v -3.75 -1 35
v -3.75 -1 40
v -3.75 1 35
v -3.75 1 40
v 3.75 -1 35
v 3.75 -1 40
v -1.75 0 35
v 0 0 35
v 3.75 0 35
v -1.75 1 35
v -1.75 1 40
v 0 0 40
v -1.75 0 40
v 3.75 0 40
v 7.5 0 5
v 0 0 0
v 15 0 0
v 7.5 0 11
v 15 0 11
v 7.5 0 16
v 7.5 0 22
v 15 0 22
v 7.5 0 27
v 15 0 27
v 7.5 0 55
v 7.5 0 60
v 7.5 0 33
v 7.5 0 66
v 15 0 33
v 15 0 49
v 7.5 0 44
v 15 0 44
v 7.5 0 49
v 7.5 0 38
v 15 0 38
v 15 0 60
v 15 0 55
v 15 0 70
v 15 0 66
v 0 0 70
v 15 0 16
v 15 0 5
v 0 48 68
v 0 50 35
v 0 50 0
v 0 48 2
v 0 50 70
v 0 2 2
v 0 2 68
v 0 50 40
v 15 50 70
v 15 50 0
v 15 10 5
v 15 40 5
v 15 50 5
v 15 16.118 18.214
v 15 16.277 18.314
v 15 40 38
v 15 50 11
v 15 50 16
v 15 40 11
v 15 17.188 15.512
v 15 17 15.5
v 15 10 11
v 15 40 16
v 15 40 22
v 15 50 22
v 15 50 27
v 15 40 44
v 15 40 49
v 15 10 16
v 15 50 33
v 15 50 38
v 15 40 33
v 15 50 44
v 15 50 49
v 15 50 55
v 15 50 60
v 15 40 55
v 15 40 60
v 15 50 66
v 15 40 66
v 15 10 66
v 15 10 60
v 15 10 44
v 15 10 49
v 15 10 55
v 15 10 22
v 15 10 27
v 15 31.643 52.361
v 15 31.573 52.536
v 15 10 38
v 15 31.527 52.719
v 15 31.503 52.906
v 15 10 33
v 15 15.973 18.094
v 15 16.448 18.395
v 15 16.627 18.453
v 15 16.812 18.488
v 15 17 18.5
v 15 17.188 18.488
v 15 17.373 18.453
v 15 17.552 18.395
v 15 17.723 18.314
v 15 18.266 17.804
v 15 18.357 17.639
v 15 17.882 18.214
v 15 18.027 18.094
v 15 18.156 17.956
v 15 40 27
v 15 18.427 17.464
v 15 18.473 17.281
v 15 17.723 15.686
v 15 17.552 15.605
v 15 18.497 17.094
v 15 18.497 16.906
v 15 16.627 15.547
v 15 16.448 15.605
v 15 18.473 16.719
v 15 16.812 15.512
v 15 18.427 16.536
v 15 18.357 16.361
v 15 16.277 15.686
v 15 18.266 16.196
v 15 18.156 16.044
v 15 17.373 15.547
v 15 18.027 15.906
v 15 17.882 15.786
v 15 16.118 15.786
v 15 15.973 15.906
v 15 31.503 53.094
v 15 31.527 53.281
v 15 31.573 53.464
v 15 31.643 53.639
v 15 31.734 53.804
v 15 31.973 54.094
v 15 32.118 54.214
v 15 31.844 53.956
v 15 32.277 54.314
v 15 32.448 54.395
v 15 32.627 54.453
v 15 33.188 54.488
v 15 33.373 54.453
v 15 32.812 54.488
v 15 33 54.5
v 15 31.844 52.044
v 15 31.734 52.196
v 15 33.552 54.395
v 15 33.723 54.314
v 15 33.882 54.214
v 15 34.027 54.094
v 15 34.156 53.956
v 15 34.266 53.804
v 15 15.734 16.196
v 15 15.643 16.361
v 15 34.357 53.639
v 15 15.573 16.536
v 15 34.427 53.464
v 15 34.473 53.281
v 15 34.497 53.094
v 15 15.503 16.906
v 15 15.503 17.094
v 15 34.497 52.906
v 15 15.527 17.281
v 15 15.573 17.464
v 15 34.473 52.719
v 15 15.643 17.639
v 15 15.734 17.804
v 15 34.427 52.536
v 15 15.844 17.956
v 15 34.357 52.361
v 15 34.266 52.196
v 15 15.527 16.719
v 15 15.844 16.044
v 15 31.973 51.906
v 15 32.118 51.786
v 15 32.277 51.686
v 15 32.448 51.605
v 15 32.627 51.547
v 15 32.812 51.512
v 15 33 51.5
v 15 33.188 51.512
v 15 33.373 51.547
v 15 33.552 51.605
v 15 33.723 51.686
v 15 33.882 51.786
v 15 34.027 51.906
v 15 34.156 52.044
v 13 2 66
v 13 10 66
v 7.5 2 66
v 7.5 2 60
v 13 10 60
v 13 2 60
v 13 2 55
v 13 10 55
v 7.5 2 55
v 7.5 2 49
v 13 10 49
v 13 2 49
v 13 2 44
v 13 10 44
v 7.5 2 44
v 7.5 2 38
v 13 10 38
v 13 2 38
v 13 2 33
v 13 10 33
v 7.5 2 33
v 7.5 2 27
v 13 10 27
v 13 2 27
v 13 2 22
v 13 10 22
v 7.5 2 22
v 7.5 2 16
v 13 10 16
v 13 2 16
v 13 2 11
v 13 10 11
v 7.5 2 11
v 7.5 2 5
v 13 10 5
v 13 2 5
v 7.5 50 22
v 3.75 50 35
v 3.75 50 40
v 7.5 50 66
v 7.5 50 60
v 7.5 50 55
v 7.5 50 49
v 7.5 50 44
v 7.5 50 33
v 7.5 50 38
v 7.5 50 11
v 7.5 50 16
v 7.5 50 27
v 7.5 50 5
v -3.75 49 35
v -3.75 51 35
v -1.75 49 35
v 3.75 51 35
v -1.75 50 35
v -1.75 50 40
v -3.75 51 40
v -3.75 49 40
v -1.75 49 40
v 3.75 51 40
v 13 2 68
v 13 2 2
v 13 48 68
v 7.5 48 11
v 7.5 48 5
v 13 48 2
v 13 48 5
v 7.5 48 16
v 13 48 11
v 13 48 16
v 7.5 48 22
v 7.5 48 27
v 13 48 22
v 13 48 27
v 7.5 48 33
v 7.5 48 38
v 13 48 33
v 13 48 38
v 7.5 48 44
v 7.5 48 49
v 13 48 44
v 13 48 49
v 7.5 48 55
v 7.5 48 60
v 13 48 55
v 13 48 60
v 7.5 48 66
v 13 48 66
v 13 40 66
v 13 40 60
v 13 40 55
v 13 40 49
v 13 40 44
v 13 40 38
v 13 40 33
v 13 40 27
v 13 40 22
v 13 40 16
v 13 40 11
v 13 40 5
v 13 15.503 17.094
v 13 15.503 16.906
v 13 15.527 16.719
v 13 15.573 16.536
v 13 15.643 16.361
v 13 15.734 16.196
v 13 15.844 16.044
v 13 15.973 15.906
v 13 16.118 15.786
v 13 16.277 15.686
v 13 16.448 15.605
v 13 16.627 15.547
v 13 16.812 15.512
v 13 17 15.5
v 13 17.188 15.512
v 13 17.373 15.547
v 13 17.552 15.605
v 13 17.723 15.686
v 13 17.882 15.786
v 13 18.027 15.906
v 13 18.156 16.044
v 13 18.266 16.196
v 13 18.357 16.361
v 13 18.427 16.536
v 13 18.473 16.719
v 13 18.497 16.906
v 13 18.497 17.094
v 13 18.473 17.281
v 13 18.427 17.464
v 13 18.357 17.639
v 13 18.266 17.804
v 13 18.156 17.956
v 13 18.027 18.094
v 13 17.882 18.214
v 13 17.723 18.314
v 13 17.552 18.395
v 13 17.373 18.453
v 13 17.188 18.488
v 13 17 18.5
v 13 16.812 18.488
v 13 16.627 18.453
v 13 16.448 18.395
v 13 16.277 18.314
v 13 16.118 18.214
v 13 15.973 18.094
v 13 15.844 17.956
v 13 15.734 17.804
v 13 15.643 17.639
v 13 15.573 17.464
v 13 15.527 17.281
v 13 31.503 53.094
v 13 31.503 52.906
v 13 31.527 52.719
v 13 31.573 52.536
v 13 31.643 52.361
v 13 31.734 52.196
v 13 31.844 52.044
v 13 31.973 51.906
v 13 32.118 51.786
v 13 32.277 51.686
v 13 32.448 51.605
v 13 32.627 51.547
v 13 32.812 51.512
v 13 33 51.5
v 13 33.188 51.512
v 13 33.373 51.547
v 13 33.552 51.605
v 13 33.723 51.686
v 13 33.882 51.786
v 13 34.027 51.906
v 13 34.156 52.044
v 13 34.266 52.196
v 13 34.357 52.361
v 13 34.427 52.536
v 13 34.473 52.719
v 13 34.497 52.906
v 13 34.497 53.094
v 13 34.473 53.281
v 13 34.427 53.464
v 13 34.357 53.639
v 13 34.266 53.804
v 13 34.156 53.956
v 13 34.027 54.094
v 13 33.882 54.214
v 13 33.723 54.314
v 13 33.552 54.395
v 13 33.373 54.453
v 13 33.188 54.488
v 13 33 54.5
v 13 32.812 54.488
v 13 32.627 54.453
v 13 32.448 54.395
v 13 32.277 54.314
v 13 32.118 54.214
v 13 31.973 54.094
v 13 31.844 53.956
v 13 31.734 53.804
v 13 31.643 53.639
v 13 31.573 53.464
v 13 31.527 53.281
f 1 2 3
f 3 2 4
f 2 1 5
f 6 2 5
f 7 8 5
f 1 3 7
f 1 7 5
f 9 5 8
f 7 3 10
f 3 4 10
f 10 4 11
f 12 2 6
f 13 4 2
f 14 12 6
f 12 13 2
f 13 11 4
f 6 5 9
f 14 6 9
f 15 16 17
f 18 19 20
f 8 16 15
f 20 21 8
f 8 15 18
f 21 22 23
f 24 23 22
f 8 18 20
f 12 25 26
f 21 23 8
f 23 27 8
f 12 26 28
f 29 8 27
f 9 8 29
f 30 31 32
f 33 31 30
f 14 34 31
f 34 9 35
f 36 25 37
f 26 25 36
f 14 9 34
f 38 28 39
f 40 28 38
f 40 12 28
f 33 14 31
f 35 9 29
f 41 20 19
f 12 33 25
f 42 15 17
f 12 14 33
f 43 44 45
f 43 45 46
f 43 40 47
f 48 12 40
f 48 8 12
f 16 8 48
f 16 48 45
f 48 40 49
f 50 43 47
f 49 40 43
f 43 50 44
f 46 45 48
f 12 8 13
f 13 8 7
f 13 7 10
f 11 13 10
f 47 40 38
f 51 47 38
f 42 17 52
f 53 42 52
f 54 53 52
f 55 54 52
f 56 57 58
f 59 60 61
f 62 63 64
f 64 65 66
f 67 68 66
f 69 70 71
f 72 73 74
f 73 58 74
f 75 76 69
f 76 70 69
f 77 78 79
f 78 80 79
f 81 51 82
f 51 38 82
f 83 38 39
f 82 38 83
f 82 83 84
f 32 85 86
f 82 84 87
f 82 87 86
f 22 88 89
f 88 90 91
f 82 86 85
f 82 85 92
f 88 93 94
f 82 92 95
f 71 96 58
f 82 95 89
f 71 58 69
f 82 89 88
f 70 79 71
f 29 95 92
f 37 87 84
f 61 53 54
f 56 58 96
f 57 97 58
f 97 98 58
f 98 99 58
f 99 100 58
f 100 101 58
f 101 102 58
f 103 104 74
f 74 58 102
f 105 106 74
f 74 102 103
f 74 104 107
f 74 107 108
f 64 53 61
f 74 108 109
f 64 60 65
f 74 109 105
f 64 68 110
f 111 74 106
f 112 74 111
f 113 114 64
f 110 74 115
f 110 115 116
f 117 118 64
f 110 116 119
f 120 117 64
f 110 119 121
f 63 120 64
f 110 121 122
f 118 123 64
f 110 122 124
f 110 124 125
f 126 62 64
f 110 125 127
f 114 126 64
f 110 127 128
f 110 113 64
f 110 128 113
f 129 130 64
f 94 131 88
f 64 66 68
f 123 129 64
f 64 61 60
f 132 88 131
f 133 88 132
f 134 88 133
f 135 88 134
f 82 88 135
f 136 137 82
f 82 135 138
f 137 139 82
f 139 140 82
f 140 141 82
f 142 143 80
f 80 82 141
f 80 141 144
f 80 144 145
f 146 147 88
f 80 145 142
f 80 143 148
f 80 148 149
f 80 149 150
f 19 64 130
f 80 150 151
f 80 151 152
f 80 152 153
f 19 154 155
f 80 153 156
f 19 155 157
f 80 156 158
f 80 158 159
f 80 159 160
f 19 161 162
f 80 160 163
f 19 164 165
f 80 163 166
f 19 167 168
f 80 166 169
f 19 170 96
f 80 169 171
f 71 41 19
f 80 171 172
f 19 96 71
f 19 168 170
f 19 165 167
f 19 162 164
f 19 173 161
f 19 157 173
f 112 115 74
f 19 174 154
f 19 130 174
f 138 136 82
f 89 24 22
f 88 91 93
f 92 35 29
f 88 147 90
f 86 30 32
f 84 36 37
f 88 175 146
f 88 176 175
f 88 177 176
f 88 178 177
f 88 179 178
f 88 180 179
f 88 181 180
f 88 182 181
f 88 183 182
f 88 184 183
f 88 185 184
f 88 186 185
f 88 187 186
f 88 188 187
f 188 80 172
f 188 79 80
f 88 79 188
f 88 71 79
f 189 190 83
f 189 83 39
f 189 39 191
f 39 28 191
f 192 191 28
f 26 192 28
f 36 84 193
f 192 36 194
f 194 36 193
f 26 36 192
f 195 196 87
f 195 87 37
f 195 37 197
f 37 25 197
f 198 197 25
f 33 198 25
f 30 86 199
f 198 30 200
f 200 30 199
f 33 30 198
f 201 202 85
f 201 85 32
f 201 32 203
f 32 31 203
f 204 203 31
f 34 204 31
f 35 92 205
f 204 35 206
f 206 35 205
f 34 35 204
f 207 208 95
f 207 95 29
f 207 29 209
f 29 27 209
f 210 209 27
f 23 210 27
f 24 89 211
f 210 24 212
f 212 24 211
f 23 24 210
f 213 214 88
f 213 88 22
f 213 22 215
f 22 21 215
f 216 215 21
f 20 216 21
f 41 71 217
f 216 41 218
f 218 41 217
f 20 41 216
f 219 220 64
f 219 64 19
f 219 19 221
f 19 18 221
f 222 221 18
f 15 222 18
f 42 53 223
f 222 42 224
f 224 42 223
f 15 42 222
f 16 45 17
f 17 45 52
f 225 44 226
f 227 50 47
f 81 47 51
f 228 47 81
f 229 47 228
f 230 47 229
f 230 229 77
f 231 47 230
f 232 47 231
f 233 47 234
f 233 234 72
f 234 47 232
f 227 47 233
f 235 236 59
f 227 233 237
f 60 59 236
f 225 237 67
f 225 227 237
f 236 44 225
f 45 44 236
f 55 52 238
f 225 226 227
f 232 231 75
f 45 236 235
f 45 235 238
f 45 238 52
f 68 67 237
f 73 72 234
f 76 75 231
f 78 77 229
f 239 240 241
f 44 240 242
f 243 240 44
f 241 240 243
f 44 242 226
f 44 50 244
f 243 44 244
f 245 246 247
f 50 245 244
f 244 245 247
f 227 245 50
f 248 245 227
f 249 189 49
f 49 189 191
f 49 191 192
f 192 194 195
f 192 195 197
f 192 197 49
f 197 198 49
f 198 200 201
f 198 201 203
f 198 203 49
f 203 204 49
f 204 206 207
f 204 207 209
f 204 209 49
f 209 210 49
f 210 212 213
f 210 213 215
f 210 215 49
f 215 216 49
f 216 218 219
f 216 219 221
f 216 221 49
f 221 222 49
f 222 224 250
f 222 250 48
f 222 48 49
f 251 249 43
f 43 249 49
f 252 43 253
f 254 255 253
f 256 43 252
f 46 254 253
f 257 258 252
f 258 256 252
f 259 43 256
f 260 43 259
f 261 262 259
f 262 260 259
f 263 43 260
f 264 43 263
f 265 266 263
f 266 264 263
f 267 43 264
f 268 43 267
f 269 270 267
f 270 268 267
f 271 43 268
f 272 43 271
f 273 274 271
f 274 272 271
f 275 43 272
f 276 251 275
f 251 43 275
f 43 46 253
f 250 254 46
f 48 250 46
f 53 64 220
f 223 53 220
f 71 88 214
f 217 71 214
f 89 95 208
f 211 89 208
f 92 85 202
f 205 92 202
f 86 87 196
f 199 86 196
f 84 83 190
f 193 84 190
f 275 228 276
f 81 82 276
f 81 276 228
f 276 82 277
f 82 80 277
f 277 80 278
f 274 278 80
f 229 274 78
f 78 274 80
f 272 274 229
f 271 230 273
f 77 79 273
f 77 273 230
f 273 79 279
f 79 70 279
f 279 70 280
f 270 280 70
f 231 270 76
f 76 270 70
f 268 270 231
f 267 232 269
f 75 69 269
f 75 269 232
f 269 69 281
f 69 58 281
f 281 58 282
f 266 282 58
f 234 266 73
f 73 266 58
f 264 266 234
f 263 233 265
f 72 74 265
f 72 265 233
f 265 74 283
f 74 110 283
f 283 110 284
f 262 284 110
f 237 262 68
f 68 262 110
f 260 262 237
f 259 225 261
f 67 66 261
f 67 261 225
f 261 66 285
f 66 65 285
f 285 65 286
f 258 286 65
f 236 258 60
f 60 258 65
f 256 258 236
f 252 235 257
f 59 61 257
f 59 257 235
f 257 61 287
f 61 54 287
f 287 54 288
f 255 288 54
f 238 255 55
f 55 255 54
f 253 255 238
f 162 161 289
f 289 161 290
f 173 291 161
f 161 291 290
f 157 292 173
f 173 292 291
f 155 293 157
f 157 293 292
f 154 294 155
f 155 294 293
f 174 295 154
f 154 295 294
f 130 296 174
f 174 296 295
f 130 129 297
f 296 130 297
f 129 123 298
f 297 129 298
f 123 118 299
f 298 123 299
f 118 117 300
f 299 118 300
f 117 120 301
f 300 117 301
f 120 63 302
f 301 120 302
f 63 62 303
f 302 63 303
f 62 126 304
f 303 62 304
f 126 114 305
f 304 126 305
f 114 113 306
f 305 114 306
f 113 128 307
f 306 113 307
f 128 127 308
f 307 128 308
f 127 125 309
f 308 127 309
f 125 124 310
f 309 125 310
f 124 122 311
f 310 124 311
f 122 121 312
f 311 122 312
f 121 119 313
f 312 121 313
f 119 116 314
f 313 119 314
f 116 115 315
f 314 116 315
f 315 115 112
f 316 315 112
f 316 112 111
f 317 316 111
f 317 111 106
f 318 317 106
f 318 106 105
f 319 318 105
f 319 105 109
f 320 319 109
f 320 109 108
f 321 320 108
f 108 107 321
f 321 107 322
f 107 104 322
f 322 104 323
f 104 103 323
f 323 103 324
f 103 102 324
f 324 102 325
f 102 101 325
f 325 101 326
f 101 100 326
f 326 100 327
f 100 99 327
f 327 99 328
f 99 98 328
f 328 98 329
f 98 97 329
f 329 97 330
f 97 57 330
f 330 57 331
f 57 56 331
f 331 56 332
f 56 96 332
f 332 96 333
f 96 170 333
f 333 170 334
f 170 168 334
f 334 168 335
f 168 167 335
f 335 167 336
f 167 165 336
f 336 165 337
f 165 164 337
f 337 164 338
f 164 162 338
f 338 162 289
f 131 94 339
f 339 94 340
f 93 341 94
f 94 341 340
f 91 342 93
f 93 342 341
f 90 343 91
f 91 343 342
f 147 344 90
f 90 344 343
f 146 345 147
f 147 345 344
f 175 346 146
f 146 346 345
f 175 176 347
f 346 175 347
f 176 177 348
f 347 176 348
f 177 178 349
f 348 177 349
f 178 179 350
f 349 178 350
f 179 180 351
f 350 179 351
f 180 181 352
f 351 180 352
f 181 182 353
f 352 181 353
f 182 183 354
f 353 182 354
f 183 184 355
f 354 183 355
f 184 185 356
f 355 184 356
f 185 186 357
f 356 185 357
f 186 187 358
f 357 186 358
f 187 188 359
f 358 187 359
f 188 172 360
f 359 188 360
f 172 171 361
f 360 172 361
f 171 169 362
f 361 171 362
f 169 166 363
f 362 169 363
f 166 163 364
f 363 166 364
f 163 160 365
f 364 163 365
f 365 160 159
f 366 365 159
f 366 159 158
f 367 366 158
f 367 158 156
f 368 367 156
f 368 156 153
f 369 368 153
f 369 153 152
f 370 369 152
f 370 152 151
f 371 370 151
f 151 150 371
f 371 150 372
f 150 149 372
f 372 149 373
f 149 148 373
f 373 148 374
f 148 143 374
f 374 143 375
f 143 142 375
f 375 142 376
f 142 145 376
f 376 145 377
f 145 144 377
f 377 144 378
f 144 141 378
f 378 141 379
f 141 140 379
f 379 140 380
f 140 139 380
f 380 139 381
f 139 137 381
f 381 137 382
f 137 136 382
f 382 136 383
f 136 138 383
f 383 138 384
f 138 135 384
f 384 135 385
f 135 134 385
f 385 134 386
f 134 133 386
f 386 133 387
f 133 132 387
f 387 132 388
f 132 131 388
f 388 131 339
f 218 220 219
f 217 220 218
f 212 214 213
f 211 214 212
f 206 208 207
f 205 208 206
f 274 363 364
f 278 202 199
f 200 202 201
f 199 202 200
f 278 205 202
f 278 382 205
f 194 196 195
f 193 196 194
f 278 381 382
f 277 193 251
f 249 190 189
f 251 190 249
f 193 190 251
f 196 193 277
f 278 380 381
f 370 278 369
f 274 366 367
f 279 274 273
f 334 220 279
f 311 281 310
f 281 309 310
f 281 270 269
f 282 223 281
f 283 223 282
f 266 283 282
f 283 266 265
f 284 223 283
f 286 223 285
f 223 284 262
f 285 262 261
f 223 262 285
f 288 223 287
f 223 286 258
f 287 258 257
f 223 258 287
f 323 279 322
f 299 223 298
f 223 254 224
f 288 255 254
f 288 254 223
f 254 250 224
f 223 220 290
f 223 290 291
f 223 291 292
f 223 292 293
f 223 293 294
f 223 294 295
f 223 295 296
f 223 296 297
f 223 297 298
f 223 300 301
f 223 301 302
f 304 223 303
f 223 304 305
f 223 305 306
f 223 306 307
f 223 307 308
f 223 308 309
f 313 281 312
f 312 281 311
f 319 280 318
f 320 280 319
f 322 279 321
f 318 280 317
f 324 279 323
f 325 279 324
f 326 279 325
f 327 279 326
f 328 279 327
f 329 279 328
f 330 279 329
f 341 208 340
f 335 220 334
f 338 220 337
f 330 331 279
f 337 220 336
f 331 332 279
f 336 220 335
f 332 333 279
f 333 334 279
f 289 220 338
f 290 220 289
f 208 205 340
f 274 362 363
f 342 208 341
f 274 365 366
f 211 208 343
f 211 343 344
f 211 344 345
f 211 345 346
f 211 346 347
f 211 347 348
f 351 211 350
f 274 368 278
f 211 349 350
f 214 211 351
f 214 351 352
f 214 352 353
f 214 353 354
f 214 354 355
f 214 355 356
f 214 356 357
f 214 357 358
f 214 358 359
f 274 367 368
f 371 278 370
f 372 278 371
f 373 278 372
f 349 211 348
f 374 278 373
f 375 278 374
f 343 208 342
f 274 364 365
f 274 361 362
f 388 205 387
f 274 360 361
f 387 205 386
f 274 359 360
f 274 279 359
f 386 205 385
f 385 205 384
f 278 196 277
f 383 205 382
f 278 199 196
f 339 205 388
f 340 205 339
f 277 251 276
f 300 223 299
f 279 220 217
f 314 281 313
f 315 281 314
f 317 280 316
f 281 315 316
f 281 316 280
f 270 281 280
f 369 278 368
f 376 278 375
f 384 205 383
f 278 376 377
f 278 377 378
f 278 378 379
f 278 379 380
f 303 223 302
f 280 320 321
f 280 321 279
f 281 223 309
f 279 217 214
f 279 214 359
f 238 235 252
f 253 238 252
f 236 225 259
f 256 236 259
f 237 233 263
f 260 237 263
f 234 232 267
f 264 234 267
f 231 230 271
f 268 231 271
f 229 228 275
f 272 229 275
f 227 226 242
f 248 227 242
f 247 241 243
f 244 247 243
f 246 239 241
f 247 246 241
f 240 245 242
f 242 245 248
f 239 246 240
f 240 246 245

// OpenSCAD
// Parameters

// Main box
w = 50;
l = 70;
h = 15;
thickness = 2; 

// Holes
fixation_hole_r = 1.5;
cylinder_resolution = 50;
distance_from_edges = 15;

// Openings
opening_h = 6;
opening_w = 10;
opening_s = 5;
number_openings = (l-opening_s)/(opening_h+opening_s);

// Attach
attach_l = h/2;
attach_w = 5;
attach_h = 1;
attach_clip_h = 1;
attach_clip_l = 2;

// Back box
difference(){

	// Main box
	difference(){
		cube([h,w,l]);
		translate([-thickness,thickness,thickness]) {
  			cube([h,w-2*thickness,l-2*thickness]);
		}
	}

	// Hole 1
	translate([0,distance_from_edges+thickness,distance_from_edges+thickness]) {
		rotate([0,90,0]){
			cylinder(h = 30, r=fixation_hole_r, $fn=cylinder_resolution);
		} 
	}

	// Hole 2
	translate([0,w-distance_from_edges-thickness,l-distance_from_edges-thickness]) {
		rotate([0,90,0]){
			cylinder(h = 30, r=fixation_hole_r, $fn=cylinder_resolution);
		} 
	}

	// Openings
	for ( i = [0 : number_openings] )
	{
	translate([h/2,-opening_w,opening_s+i*(opening_h+opening_s)]) cube([2*opening_w,2*opening_w,opening_h]);
	}

	for ( i = [0 : number_openings] )
	{
	translate([h/2,-opening_w+w,opening_s+i*(opening_h+opening_s)]) cube([2*opening_w,2*opening_w,opening_h]);
	}

}



// Attach
translate([-attach_l/2,-attach_h,l/2]) cube([attach_l,attach_h,attach_w]);
translate([-attach_l/2,0,l/2]) cube([attach_clip_l,attach_clip_h,attach_w]);

translate([-attach_l/2,w,l/2]) cube([attach_l,attach_h,attach_w]);
translate([-attach_l/2,w-attach_h,l/2]) cube([attach_clip_l,attach_clip_h,attach_w]);
